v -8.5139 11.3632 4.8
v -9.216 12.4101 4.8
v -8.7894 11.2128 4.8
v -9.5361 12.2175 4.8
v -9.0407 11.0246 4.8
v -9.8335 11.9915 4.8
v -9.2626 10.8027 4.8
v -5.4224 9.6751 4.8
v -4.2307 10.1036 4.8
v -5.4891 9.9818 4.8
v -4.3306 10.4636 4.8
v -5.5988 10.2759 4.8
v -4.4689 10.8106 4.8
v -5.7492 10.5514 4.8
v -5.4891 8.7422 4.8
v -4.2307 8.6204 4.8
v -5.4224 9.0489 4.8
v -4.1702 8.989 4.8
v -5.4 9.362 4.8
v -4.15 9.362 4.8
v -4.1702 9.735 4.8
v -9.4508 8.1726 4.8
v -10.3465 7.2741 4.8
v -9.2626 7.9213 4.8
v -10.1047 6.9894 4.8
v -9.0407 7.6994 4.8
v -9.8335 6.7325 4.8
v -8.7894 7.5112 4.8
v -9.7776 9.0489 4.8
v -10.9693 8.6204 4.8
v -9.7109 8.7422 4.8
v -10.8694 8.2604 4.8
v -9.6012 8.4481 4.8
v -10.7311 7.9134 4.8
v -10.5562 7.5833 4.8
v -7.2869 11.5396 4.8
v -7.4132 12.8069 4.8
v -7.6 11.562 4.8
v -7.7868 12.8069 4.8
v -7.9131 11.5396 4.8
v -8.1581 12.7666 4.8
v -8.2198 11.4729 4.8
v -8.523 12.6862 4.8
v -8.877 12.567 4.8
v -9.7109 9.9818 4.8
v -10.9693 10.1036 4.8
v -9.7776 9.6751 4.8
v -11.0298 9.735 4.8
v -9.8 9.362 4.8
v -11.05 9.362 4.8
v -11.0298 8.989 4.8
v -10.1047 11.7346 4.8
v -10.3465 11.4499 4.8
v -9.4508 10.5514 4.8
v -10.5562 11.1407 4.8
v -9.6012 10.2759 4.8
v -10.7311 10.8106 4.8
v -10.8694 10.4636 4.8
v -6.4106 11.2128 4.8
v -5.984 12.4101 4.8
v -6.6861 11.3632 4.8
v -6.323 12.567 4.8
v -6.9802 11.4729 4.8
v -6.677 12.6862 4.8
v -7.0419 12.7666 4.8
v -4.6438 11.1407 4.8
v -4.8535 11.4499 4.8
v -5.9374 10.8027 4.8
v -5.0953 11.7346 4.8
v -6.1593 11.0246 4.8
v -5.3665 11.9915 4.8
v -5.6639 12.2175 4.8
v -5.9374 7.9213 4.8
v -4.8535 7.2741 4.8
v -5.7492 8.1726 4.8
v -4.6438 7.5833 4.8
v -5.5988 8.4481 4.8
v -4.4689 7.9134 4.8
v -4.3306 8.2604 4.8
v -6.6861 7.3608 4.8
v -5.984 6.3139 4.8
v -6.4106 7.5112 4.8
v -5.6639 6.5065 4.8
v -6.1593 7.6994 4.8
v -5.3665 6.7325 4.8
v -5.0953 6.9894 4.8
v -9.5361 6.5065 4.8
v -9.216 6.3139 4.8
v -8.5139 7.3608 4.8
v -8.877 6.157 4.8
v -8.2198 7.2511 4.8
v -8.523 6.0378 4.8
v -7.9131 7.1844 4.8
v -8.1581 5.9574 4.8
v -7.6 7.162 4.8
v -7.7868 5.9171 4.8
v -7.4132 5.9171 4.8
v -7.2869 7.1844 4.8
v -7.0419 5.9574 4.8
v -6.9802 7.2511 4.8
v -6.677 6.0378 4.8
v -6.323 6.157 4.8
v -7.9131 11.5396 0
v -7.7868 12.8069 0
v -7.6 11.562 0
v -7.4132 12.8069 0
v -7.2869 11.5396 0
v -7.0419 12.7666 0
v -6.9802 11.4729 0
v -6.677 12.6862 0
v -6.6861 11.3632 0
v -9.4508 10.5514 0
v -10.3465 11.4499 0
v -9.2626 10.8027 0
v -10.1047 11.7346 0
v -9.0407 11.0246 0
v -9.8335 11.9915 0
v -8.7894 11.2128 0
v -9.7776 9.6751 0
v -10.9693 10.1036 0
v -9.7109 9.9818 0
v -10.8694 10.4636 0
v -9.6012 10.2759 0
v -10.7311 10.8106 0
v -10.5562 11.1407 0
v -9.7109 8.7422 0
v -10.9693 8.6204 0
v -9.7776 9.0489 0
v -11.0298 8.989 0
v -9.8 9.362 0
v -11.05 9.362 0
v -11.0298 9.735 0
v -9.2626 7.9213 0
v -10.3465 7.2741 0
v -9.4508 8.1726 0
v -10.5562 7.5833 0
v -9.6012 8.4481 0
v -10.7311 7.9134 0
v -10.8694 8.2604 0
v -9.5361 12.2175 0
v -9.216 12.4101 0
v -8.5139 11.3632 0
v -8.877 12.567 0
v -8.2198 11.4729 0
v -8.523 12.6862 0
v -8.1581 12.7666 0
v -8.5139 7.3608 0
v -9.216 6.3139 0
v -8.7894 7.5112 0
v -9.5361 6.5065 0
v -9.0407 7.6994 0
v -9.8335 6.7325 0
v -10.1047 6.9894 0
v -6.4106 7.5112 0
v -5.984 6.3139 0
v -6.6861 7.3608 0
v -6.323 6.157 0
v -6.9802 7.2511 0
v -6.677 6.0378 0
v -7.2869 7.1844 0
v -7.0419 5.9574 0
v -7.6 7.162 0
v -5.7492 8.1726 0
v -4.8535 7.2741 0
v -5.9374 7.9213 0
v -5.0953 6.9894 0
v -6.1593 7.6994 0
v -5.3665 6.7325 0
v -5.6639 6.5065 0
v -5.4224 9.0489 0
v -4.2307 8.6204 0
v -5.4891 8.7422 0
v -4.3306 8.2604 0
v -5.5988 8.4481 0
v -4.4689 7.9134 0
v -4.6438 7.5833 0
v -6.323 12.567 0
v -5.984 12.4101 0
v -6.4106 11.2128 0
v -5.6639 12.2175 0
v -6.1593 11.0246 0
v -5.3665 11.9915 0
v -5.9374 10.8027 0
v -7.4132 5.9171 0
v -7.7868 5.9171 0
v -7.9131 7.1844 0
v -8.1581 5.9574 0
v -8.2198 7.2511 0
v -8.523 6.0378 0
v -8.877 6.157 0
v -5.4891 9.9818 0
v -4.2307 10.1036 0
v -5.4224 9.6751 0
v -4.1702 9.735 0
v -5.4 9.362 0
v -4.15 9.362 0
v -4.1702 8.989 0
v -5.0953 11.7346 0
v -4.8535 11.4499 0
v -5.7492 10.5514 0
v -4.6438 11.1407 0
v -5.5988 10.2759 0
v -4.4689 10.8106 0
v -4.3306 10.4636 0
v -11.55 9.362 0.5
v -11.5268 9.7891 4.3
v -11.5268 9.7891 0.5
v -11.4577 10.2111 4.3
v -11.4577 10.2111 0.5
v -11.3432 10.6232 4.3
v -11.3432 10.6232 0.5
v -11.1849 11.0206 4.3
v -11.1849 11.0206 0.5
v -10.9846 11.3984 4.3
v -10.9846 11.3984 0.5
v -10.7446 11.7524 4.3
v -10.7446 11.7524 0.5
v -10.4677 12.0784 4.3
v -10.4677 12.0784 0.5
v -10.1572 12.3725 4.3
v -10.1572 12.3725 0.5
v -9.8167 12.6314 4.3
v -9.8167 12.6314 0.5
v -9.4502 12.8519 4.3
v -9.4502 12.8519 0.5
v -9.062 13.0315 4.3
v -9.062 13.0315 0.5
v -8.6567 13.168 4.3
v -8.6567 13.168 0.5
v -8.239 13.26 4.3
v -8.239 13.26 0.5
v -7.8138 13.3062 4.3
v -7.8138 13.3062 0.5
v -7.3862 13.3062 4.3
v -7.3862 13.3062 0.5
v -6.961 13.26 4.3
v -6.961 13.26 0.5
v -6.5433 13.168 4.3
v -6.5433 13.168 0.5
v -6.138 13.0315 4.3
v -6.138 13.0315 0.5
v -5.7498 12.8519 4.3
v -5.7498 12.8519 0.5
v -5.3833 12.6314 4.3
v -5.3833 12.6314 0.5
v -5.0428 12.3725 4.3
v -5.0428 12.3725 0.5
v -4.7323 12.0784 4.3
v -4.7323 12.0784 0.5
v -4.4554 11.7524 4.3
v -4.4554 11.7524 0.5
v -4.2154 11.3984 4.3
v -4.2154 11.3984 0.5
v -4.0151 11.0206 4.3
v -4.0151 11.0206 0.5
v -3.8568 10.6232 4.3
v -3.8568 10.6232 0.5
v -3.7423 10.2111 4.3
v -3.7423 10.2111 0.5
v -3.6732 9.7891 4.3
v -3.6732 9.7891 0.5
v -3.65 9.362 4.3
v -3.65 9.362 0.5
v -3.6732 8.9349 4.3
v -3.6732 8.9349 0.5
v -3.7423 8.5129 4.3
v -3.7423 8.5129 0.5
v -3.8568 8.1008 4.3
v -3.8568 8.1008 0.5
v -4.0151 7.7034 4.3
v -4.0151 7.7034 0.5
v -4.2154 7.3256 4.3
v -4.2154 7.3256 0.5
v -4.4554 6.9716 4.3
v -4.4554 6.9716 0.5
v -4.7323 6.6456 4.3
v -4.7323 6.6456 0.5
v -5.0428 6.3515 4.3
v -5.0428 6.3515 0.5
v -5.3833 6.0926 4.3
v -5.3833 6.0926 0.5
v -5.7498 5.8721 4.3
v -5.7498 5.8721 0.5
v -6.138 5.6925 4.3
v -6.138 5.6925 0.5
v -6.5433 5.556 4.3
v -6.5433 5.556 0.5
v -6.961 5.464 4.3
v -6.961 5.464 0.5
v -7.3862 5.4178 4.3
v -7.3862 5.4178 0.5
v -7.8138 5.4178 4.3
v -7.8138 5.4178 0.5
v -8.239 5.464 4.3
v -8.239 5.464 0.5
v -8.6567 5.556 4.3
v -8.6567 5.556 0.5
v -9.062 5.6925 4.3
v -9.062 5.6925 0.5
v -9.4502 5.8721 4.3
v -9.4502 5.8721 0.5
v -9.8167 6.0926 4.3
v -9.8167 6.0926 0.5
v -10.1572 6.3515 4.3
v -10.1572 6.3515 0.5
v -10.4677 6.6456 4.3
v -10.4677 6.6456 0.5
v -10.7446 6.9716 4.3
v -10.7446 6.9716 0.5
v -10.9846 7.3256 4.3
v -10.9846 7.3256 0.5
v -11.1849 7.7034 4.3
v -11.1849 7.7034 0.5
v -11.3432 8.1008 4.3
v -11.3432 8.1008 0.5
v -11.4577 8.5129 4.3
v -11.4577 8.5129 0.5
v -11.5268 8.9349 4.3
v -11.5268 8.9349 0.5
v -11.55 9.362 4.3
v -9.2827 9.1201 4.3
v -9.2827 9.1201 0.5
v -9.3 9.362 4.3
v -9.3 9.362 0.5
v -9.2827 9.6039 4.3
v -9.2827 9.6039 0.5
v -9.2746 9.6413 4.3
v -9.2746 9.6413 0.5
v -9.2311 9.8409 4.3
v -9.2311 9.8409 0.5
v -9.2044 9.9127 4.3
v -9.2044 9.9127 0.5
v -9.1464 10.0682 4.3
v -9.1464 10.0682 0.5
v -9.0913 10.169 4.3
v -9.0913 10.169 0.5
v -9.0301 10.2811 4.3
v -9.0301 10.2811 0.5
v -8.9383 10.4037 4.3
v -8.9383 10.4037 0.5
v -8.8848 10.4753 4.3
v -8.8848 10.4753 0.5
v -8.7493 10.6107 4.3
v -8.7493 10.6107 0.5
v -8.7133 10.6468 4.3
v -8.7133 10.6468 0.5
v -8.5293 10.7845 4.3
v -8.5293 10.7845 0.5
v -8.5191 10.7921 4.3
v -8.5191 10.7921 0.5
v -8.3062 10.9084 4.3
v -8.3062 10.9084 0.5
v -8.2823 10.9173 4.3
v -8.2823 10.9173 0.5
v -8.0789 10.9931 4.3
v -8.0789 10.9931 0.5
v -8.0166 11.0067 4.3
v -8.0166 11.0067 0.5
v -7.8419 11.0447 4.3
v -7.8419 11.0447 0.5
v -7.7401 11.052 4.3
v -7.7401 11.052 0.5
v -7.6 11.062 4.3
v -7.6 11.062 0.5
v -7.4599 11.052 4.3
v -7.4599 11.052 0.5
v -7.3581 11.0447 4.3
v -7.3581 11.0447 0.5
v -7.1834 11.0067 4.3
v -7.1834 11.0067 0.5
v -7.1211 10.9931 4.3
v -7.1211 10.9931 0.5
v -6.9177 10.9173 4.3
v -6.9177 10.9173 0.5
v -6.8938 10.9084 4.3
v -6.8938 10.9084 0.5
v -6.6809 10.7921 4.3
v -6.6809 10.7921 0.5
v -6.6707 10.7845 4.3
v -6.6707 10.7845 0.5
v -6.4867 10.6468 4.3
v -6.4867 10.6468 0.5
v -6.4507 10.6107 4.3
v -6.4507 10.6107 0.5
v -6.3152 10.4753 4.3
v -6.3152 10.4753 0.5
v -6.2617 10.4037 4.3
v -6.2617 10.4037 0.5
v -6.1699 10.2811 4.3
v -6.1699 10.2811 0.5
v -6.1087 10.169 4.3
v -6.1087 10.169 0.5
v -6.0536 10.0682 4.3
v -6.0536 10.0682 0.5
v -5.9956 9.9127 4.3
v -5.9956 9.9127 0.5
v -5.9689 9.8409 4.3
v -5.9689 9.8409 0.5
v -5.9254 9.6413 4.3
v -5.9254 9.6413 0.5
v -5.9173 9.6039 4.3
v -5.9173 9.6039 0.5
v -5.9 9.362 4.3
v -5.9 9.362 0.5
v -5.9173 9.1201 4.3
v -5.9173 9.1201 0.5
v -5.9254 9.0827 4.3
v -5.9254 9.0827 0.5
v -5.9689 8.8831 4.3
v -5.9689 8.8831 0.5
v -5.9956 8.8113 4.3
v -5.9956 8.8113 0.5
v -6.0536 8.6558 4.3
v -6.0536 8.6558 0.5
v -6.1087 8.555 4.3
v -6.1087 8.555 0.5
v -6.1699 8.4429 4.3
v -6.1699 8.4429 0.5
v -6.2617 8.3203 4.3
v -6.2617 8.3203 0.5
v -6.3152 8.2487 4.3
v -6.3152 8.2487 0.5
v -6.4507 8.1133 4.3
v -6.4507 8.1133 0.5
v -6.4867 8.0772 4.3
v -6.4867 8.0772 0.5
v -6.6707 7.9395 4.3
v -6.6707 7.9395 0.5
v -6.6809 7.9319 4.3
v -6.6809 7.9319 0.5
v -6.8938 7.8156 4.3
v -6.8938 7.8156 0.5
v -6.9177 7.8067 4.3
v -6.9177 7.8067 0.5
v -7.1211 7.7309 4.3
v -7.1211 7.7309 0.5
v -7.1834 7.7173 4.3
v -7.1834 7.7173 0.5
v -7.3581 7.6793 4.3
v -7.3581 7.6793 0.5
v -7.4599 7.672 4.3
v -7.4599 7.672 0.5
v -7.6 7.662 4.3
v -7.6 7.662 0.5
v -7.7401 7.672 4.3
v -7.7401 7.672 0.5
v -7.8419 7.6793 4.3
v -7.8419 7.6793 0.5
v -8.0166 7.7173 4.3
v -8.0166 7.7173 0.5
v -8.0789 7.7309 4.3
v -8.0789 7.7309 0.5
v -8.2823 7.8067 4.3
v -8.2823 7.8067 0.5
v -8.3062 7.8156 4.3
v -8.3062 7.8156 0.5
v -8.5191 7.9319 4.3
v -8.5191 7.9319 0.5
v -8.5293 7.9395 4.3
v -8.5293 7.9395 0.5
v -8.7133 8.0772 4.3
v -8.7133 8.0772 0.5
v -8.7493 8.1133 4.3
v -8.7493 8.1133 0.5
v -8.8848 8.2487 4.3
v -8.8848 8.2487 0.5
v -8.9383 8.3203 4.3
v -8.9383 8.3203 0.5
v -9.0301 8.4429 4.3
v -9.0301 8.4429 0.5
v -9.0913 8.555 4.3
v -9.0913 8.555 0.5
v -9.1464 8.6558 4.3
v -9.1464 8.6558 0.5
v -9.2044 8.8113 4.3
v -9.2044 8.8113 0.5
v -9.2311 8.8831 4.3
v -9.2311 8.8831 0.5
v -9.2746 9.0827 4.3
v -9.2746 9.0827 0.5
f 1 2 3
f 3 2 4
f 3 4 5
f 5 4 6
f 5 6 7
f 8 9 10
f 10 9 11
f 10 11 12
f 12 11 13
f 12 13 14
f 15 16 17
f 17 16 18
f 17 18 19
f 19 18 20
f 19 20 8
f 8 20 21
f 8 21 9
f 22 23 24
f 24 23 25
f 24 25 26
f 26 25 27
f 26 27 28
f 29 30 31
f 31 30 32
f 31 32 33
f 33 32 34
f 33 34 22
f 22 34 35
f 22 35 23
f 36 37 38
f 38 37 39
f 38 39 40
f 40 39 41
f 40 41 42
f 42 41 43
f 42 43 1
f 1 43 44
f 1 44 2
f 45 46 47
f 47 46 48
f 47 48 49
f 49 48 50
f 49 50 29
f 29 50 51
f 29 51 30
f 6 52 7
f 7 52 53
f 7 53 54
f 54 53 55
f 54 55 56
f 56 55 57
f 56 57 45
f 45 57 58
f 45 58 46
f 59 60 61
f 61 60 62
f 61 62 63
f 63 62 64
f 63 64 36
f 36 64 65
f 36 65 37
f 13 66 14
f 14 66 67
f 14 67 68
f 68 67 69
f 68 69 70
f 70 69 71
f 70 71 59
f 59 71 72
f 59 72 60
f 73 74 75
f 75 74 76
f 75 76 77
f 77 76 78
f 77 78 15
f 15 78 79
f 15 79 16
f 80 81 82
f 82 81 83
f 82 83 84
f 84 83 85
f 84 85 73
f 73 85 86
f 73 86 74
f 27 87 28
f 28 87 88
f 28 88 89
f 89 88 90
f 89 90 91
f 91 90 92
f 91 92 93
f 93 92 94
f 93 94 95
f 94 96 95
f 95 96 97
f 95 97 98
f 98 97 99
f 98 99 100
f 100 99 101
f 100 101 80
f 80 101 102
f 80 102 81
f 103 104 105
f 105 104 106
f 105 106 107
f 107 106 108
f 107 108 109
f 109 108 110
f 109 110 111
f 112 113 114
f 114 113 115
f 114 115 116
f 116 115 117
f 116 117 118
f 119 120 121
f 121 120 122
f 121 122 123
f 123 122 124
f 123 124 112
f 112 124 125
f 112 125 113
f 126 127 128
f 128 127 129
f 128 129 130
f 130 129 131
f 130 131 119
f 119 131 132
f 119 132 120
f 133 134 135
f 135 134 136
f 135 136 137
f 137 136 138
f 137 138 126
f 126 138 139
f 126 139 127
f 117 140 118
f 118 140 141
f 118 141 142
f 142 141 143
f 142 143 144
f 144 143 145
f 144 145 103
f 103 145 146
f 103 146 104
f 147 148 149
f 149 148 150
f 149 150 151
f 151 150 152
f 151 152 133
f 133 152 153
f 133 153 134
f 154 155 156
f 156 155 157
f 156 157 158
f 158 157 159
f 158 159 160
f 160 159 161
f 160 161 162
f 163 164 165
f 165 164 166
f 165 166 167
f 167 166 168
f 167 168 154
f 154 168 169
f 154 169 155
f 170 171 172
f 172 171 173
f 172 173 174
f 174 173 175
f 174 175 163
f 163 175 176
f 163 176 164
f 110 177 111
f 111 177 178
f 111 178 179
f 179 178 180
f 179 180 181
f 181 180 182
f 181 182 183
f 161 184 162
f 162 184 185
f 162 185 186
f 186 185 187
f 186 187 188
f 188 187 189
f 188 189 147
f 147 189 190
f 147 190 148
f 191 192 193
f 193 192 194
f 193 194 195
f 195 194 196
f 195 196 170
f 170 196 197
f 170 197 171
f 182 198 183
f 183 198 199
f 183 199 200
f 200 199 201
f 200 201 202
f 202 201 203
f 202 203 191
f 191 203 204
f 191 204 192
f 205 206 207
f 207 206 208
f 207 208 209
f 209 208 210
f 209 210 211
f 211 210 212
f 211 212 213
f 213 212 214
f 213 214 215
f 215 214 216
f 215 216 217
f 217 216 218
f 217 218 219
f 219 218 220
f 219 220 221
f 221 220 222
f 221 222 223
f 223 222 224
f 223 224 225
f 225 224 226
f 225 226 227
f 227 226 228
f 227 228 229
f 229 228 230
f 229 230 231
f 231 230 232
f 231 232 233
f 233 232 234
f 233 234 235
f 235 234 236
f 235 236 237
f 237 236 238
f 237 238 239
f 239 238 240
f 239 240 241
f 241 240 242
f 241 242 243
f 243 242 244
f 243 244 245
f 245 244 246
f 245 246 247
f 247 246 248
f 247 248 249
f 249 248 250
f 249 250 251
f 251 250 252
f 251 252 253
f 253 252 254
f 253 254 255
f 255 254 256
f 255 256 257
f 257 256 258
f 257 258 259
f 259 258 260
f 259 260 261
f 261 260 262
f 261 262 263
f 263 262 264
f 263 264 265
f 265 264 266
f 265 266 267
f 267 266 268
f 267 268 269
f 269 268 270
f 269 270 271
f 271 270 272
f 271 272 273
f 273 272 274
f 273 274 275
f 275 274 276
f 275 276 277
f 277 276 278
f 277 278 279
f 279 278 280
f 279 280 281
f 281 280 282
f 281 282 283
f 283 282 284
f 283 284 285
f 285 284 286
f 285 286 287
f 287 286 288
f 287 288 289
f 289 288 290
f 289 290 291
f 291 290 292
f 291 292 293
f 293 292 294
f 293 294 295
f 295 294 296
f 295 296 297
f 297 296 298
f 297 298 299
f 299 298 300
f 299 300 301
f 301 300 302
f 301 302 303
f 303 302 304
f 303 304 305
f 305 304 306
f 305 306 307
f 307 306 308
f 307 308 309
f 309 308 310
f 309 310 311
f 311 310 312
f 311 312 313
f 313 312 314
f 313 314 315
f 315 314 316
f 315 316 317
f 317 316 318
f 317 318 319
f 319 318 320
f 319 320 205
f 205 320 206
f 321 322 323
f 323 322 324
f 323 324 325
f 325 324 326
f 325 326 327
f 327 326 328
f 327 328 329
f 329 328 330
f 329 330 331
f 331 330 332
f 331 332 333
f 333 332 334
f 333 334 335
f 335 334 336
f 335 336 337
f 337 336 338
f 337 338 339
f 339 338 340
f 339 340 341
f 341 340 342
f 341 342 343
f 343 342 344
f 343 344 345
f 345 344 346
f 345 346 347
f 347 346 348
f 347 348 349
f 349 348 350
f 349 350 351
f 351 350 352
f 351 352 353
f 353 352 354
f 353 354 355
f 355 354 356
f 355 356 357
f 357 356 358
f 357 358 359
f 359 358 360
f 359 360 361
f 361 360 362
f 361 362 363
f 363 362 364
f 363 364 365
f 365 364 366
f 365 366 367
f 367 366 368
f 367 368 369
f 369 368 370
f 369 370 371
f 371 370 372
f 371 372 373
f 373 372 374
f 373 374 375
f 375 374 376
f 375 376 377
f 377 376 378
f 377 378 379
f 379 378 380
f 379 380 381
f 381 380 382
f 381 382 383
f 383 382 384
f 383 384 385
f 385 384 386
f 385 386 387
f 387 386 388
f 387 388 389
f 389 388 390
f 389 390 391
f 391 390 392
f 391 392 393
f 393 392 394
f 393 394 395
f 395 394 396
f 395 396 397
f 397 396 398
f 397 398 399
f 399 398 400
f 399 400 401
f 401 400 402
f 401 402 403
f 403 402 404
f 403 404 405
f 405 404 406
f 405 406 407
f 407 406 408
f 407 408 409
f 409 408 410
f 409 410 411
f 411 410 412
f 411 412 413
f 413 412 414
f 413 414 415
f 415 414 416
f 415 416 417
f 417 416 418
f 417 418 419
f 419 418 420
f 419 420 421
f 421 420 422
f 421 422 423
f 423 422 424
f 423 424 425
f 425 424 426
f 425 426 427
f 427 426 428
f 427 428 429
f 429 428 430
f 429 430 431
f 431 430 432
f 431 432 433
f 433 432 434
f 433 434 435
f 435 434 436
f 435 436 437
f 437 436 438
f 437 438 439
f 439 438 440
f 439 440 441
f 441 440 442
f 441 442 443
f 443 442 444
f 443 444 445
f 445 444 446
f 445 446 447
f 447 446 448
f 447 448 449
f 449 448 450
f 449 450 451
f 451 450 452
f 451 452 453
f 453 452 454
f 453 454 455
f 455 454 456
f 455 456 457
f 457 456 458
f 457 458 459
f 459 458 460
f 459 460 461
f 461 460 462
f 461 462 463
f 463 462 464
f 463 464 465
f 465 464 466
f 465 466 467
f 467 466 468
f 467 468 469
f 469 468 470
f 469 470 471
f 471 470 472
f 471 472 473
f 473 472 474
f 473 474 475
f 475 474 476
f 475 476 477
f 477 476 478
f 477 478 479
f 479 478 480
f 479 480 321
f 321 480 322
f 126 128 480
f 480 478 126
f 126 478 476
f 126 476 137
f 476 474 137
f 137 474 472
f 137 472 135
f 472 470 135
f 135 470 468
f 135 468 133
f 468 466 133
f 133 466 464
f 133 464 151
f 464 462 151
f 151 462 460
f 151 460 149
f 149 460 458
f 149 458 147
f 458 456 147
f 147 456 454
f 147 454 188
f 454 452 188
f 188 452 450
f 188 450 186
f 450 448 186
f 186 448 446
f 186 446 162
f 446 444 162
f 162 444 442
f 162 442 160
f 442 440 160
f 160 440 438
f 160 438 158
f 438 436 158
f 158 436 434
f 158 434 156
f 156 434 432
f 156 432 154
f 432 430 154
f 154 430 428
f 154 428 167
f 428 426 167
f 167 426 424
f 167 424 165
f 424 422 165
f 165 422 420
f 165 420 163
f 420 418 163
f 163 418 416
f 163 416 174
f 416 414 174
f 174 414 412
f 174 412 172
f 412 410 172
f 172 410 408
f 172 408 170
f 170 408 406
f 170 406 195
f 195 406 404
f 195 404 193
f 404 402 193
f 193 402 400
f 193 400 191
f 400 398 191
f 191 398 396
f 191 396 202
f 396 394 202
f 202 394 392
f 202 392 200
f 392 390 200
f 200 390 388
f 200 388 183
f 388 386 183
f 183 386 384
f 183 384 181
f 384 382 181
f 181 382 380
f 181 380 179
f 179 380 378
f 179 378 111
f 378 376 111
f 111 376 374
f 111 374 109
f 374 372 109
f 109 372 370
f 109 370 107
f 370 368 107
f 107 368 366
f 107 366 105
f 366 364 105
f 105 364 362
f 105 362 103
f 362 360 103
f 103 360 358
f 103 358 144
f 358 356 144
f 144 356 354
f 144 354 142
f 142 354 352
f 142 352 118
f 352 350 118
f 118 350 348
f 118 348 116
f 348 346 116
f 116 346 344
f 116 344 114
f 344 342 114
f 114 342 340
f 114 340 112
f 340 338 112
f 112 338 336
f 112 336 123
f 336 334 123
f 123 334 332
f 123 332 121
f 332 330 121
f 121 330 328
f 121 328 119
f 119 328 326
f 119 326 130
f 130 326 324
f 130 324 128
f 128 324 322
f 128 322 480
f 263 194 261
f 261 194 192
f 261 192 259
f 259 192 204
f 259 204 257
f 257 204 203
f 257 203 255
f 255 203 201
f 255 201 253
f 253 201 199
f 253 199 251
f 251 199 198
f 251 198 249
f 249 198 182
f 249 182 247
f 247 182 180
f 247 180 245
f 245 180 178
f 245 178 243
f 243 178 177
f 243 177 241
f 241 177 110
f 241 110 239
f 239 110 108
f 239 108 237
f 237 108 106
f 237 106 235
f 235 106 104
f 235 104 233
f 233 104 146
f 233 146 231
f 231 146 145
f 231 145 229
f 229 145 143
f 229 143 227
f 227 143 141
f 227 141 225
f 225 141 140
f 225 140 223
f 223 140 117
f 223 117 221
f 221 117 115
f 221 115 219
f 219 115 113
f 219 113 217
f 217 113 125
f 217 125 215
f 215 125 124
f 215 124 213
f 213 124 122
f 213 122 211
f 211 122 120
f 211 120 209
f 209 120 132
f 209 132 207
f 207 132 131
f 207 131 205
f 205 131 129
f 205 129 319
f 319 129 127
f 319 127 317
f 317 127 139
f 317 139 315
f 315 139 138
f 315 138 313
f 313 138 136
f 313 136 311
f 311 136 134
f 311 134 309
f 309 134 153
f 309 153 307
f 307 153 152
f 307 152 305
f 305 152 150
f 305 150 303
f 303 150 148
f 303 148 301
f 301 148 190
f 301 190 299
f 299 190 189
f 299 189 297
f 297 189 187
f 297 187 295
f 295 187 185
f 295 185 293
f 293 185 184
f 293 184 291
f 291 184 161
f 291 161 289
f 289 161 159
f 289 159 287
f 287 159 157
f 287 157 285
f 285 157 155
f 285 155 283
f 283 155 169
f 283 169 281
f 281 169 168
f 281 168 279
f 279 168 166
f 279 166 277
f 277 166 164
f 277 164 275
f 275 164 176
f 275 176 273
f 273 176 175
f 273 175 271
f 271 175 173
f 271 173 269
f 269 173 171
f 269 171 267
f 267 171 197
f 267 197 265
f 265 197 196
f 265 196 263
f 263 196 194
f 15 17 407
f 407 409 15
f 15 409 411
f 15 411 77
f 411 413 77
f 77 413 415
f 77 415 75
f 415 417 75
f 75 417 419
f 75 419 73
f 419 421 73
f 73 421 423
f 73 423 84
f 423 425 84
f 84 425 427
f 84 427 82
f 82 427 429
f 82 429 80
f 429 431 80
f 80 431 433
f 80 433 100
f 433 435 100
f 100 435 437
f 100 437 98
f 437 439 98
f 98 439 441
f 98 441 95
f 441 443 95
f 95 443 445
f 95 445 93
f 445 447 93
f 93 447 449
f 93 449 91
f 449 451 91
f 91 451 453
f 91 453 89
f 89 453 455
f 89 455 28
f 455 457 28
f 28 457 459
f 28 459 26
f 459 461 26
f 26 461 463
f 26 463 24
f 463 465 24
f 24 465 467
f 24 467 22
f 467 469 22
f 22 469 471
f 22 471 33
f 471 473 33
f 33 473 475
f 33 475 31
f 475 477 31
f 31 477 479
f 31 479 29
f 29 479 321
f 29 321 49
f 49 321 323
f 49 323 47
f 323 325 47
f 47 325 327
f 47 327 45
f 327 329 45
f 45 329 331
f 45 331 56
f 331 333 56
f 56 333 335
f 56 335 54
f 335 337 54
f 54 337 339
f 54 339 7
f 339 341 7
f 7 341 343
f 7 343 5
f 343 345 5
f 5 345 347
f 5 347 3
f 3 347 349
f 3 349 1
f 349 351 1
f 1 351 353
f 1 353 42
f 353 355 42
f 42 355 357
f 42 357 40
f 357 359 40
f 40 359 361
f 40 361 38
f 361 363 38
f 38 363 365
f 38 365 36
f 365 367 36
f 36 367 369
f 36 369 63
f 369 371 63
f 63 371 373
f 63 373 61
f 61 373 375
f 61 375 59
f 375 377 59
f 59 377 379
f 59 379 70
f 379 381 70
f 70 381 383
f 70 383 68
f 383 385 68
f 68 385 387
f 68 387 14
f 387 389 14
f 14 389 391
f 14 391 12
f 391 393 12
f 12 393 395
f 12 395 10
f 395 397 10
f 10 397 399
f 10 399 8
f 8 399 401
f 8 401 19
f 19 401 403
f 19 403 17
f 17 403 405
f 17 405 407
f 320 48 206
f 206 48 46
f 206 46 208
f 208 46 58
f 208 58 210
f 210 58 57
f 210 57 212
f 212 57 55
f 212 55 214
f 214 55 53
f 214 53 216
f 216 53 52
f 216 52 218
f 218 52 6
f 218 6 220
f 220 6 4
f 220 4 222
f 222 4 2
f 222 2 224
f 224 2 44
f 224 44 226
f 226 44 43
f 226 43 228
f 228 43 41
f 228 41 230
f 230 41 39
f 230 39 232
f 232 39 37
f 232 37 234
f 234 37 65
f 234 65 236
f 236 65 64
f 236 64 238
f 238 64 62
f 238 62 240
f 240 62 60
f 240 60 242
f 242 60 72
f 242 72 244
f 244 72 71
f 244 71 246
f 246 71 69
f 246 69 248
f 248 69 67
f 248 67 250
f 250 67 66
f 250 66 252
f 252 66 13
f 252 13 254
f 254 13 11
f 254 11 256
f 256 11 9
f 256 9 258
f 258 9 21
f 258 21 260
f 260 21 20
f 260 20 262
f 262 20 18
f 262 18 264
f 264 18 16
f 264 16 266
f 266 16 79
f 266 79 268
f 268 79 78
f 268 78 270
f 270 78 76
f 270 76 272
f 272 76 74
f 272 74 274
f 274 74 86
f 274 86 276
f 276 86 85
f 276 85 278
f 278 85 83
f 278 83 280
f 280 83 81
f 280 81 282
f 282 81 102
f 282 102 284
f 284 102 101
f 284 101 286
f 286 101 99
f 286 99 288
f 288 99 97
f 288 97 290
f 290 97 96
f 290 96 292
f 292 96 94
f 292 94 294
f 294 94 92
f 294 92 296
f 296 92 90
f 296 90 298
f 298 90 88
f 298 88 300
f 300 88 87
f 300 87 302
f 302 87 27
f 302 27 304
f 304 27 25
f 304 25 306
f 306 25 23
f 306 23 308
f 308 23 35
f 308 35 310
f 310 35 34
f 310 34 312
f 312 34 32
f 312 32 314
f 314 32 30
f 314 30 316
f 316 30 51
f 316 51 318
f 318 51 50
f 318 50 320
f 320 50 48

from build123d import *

# Parameters (mm, degrees)
CROQUIS1_R              = 3.95
CROQUIS1_R_2            = 1.7
SALIENTE_EXTRUIR1_DEPTH = 4.8
CHAFL_N1_SIZE           = 0.5


with BuildPart() as part:
    # Croquis1 → Saliente-Extruir1 (new body)
    with BuildSketch(Plane.XY):
        with Locations((-7.600000242, 9.362000442)):
            Circle(CROQUIS1_R)
        with Locations((-7.600000242, 9.362000442)):
            Circle(CROQUIS1_R_2, mode=Mode.SUBTRACT)
    extrude(amount=SALIENTE_EXTRUIR1_DEPTH)

    # Chaflán1
    chafl_n1_edges = [part.edges().sort_by_distance(p)[0] for p in [
        (-11.550000242, 9.362000442, 0),
        (-11.550000242, 9.362000442, 4.8),
        (-9.300000242, 9.362000442, 0),
        (-9.300000242, 9.362000442, 4.8),
    ]]
    chamfer(chafl_n1_edges, length=CHAFL_N1_SIZE)


solid = part.part
